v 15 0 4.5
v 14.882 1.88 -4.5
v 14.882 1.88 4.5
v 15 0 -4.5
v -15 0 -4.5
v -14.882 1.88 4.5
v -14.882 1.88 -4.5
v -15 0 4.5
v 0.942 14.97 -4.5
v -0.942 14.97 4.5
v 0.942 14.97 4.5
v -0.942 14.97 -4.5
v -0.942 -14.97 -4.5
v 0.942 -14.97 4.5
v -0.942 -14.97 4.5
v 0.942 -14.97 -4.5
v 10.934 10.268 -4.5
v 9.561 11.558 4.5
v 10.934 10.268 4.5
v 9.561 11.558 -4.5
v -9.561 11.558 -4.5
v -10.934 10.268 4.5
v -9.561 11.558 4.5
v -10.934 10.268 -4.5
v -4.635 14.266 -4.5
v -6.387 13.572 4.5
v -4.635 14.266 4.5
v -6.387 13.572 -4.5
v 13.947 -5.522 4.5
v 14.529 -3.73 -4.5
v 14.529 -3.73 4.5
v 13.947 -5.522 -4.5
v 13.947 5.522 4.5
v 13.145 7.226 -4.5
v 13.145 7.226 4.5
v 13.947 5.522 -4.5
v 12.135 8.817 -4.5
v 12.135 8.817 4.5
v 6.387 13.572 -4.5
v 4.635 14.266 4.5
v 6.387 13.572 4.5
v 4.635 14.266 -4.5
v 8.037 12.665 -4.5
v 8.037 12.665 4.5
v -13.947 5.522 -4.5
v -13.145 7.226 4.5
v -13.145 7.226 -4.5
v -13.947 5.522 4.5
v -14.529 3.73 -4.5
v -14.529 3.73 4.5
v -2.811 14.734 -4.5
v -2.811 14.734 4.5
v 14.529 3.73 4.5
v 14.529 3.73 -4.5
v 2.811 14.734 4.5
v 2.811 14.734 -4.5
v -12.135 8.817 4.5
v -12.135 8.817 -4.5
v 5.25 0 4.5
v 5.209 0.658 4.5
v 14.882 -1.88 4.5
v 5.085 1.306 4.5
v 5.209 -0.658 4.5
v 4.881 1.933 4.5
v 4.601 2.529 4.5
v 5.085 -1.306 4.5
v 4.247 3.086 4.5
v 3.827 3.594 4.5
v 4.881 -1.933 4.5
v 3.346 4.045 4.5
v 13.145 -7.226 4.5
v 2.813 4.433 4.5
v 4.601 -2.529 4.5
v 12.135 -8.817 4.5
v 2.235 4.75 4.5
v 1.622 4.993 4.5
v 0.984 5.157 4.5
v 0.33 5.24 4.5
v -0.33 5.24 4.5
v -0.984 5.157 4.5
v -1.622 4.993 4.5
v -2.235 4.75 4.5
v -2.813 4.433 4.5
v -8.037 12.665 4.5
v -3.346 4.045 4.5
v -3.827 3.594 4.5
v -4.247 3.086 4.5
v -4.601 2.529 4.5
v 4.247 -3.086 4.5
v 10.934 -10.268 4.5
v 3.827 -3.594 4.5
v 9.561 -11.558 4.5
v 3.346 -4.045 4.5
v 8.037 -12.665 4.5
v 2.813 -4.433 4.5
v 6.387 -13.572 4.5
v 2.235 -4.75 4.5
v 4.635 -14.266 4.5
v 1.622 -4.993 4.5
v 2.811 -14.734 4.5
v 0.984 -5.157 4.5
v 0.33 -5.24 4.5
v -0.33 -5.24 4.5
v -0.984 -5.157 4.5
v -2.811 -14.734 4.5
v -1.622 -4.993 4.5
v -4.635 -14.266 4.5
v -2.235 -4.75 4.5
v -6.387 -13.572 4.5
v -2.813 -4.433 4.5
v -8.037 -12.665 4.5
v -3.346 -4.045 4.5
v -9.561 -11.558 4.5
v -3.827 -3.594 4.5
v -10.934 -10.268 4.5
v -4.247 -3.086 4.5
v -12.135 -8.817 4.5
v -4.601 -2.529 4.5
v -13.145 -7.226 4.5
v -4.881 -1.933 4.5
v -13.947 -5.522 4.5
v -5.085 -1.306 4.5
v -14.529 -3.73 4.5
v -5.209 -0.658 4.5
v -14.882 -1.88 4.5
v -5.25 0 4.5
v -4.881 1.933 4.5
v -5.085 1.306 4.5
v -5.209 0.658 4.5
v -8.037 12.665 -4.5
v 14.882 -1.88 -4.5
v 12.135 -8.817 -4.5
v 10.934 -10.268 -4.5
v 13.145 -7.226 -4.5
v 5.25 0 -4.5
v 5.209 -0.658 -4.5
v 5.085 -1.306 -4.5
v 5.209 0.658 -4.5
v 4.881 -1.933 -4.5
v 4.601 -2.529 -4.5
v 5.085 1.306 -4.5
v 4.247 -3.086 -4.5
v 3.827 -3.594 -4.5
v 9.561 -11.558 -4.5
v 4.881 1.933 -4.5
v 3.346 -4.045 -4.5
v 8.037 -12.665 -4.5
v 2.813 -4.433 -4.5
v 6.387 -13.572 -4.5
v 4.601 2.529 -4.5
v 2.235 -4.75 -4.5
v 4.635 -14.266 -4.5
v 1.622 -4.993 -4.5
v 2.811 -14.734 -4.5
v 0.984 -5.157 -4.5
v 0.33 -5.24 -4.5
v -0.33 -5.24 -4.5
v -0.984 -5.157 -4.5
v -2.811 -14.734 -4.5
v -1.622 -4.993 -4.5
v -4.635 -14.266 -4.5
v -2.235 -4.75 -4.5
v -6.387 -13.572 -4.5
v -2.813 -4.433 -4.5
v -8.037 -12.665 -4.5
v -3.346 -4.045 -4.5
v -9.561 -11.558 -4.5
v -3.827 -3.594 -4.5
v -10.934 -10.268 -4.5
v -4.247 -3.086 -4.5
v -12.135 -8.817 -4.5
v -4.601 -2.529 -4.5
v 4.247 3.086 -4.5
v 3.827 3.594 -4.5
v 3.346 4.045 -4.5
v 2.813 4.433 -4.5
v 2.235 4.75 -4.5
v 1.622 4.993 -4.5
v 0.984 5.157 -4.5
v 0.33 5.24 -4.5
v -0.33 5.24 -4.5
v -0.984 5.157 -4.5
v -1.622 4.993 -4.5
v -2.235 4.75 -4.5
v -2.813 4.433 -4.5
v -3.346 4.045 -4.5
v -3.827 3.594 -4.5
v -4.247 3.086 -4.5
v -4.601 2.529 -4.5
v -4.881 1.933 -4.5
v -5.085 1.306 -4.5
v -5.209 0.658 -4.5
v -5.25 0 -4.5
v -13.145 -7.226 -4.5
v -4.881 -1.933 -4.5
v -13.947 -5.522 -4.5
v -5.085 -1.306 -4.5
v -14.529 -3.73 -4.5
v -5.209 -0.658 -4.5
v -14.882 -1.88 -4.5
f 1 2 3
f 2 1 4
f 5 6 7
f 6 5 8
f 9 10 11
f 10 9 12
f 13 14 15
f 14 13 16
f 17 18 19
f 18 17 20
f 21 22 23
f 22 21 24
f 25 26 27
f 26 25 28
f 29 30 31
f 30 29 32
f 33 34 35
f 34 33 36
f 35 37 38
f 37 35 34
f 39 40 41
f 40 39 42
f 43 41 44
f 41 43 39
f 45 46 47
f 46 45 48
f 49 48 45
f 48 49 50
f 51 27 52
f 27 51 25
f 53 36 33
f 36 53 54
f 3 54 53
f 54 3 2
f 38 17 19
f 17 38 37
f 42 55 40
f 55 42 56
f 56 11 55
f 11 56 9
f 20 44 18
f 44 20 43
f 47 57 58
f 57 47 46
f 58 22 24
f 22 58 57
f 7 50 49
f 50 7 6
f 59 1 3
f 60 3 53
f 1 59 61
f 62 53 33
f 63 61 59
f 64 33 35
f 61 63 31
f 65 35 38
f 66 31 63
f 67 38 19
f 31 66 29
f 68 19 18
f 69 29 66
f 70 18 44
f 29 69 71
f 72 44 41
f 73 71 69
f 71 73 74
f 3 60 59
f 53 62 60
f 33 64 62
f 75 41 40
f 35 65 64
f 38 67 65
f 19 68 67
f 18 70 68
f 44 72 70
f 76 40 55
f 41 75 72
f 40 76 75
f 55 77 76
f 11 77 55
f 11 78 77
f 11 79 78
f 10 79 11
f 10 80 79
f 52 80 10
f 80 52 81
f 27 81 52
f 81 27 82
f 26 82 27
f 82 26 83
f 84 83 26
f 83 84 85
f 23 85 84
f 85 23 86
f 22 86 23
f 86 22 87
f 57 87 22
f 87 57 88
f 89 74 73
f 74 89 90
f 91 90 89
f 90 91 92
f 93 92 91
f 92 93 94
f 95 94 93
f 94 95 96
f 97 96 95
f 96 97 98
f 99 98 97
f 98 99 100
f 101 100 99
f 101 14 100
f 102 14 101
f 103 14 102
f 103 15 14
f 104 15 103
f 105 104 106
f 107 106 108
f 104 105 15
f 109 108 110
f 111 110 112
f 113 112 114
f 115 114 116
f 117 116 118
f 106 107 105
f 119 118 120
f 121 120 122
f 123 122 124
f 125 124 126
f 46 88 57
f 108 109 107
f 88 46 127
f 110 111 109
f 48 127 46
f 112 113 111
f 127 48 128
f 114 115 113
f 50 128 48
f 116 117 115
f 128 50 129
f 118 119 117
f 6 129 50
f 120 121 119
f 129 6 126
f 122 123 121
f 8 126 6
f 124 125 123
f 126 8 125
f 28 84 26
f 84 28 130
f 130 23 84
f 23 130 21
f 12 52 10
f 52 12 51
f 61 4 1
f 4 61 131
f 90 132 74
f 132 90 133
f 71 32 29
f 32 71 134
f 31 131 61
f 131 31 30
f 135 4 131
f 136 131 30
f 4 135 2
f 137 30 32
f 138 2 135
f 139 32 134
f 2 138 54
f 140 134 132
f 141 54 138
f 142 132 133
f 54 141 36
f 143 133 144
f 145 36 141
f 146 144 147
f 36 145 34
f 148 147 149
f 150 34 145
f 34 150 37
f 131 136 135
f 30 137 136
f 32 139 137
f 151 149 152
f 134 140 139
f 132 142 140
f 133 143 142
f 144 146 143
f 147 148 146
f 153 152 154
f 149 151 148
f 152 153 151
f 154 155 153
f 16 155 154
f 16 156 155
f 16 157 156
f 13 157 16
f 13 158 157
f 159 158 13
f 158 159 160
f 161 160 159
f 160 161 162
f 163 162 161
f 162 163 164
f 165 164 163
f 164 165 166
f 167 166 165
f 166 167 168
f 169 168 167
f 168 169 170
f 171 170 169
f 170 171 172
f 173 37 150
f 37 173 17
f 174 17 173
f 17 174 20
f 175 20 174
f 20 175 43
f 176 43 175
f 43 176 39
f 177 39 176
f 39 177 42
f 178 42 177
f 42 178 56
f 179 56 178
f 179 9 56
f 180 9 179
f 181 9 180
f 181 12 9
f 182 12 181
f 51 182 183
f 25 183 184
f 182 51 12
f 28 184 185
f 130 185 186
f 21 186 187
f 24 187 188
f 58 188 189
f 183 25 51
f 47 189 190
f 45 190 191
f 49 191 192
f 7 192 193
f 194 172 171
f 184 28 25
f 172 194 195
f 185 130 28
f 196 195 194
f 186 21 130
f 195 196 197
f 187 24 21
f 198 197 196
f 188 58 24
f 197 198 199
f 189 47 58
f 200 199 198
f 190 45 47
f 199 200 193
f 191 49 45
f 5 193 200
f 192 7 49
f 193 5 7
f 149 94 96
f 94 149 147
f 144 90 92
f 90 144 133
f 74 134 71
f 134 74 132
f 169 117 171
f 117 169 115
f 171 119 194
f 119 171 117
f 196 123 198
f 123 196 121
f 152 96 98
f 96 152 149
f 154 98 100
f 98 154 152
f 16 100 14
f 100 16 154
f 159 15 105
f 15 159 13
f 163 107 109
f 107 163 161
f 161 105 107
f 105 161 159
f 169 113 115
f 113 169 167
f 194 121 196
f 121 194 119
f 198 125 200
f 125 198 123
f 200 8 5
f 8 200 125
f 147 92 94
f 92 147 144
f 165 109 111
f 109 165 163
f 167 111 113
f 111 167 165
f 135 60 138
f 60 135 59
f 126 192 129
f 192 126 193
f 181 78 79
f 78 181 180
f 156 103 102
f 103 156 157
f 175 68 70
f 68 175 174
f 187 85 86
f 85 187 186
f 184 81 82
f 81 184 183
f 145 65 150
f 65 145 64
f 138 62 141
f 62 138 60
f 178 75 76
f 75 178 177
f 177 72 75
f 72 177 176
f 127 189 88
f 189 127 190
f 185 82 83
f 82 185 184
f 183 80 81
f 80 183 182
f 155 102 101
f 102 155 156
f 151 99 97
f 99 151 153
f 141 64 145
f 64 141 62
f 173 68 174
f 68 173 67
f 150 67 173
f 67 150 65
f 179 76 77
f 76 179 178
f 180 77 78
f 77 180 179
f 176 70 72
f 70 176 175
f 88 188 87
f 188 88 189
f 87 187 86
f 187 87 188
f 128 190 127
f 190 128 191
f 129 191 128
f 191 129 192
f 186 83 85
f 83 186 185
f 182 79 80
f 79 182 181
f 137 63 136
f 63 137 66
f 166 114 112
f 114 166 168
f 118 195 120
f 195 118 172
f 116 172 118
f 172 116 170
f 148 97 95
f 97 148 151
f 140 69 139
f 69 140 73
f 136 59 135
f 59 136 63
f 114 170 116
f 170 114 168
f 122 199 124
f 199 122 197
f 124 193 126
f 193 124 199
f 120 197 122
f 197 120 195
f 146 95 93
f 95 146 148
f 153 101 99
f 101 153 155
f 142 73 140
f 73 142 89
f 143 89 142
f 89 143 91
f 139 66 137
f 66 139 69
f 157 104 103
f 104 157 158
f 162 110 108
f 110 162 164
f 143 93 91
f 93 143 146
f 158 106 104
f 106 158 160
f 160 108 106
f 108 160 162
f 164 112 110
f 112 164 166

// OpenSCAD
$fn = 50;


difference() {
	union() {
		translate(v = [0, 0, -4.5000000000]) {
			cylinder(h = 9, r = 15.0000000000);
		}
	}
	union() {
		translate(v = [0, 0, -100.0000000000]) {
			cylinder(h = 200, r = 5.2500000000);
		}
	}
}
